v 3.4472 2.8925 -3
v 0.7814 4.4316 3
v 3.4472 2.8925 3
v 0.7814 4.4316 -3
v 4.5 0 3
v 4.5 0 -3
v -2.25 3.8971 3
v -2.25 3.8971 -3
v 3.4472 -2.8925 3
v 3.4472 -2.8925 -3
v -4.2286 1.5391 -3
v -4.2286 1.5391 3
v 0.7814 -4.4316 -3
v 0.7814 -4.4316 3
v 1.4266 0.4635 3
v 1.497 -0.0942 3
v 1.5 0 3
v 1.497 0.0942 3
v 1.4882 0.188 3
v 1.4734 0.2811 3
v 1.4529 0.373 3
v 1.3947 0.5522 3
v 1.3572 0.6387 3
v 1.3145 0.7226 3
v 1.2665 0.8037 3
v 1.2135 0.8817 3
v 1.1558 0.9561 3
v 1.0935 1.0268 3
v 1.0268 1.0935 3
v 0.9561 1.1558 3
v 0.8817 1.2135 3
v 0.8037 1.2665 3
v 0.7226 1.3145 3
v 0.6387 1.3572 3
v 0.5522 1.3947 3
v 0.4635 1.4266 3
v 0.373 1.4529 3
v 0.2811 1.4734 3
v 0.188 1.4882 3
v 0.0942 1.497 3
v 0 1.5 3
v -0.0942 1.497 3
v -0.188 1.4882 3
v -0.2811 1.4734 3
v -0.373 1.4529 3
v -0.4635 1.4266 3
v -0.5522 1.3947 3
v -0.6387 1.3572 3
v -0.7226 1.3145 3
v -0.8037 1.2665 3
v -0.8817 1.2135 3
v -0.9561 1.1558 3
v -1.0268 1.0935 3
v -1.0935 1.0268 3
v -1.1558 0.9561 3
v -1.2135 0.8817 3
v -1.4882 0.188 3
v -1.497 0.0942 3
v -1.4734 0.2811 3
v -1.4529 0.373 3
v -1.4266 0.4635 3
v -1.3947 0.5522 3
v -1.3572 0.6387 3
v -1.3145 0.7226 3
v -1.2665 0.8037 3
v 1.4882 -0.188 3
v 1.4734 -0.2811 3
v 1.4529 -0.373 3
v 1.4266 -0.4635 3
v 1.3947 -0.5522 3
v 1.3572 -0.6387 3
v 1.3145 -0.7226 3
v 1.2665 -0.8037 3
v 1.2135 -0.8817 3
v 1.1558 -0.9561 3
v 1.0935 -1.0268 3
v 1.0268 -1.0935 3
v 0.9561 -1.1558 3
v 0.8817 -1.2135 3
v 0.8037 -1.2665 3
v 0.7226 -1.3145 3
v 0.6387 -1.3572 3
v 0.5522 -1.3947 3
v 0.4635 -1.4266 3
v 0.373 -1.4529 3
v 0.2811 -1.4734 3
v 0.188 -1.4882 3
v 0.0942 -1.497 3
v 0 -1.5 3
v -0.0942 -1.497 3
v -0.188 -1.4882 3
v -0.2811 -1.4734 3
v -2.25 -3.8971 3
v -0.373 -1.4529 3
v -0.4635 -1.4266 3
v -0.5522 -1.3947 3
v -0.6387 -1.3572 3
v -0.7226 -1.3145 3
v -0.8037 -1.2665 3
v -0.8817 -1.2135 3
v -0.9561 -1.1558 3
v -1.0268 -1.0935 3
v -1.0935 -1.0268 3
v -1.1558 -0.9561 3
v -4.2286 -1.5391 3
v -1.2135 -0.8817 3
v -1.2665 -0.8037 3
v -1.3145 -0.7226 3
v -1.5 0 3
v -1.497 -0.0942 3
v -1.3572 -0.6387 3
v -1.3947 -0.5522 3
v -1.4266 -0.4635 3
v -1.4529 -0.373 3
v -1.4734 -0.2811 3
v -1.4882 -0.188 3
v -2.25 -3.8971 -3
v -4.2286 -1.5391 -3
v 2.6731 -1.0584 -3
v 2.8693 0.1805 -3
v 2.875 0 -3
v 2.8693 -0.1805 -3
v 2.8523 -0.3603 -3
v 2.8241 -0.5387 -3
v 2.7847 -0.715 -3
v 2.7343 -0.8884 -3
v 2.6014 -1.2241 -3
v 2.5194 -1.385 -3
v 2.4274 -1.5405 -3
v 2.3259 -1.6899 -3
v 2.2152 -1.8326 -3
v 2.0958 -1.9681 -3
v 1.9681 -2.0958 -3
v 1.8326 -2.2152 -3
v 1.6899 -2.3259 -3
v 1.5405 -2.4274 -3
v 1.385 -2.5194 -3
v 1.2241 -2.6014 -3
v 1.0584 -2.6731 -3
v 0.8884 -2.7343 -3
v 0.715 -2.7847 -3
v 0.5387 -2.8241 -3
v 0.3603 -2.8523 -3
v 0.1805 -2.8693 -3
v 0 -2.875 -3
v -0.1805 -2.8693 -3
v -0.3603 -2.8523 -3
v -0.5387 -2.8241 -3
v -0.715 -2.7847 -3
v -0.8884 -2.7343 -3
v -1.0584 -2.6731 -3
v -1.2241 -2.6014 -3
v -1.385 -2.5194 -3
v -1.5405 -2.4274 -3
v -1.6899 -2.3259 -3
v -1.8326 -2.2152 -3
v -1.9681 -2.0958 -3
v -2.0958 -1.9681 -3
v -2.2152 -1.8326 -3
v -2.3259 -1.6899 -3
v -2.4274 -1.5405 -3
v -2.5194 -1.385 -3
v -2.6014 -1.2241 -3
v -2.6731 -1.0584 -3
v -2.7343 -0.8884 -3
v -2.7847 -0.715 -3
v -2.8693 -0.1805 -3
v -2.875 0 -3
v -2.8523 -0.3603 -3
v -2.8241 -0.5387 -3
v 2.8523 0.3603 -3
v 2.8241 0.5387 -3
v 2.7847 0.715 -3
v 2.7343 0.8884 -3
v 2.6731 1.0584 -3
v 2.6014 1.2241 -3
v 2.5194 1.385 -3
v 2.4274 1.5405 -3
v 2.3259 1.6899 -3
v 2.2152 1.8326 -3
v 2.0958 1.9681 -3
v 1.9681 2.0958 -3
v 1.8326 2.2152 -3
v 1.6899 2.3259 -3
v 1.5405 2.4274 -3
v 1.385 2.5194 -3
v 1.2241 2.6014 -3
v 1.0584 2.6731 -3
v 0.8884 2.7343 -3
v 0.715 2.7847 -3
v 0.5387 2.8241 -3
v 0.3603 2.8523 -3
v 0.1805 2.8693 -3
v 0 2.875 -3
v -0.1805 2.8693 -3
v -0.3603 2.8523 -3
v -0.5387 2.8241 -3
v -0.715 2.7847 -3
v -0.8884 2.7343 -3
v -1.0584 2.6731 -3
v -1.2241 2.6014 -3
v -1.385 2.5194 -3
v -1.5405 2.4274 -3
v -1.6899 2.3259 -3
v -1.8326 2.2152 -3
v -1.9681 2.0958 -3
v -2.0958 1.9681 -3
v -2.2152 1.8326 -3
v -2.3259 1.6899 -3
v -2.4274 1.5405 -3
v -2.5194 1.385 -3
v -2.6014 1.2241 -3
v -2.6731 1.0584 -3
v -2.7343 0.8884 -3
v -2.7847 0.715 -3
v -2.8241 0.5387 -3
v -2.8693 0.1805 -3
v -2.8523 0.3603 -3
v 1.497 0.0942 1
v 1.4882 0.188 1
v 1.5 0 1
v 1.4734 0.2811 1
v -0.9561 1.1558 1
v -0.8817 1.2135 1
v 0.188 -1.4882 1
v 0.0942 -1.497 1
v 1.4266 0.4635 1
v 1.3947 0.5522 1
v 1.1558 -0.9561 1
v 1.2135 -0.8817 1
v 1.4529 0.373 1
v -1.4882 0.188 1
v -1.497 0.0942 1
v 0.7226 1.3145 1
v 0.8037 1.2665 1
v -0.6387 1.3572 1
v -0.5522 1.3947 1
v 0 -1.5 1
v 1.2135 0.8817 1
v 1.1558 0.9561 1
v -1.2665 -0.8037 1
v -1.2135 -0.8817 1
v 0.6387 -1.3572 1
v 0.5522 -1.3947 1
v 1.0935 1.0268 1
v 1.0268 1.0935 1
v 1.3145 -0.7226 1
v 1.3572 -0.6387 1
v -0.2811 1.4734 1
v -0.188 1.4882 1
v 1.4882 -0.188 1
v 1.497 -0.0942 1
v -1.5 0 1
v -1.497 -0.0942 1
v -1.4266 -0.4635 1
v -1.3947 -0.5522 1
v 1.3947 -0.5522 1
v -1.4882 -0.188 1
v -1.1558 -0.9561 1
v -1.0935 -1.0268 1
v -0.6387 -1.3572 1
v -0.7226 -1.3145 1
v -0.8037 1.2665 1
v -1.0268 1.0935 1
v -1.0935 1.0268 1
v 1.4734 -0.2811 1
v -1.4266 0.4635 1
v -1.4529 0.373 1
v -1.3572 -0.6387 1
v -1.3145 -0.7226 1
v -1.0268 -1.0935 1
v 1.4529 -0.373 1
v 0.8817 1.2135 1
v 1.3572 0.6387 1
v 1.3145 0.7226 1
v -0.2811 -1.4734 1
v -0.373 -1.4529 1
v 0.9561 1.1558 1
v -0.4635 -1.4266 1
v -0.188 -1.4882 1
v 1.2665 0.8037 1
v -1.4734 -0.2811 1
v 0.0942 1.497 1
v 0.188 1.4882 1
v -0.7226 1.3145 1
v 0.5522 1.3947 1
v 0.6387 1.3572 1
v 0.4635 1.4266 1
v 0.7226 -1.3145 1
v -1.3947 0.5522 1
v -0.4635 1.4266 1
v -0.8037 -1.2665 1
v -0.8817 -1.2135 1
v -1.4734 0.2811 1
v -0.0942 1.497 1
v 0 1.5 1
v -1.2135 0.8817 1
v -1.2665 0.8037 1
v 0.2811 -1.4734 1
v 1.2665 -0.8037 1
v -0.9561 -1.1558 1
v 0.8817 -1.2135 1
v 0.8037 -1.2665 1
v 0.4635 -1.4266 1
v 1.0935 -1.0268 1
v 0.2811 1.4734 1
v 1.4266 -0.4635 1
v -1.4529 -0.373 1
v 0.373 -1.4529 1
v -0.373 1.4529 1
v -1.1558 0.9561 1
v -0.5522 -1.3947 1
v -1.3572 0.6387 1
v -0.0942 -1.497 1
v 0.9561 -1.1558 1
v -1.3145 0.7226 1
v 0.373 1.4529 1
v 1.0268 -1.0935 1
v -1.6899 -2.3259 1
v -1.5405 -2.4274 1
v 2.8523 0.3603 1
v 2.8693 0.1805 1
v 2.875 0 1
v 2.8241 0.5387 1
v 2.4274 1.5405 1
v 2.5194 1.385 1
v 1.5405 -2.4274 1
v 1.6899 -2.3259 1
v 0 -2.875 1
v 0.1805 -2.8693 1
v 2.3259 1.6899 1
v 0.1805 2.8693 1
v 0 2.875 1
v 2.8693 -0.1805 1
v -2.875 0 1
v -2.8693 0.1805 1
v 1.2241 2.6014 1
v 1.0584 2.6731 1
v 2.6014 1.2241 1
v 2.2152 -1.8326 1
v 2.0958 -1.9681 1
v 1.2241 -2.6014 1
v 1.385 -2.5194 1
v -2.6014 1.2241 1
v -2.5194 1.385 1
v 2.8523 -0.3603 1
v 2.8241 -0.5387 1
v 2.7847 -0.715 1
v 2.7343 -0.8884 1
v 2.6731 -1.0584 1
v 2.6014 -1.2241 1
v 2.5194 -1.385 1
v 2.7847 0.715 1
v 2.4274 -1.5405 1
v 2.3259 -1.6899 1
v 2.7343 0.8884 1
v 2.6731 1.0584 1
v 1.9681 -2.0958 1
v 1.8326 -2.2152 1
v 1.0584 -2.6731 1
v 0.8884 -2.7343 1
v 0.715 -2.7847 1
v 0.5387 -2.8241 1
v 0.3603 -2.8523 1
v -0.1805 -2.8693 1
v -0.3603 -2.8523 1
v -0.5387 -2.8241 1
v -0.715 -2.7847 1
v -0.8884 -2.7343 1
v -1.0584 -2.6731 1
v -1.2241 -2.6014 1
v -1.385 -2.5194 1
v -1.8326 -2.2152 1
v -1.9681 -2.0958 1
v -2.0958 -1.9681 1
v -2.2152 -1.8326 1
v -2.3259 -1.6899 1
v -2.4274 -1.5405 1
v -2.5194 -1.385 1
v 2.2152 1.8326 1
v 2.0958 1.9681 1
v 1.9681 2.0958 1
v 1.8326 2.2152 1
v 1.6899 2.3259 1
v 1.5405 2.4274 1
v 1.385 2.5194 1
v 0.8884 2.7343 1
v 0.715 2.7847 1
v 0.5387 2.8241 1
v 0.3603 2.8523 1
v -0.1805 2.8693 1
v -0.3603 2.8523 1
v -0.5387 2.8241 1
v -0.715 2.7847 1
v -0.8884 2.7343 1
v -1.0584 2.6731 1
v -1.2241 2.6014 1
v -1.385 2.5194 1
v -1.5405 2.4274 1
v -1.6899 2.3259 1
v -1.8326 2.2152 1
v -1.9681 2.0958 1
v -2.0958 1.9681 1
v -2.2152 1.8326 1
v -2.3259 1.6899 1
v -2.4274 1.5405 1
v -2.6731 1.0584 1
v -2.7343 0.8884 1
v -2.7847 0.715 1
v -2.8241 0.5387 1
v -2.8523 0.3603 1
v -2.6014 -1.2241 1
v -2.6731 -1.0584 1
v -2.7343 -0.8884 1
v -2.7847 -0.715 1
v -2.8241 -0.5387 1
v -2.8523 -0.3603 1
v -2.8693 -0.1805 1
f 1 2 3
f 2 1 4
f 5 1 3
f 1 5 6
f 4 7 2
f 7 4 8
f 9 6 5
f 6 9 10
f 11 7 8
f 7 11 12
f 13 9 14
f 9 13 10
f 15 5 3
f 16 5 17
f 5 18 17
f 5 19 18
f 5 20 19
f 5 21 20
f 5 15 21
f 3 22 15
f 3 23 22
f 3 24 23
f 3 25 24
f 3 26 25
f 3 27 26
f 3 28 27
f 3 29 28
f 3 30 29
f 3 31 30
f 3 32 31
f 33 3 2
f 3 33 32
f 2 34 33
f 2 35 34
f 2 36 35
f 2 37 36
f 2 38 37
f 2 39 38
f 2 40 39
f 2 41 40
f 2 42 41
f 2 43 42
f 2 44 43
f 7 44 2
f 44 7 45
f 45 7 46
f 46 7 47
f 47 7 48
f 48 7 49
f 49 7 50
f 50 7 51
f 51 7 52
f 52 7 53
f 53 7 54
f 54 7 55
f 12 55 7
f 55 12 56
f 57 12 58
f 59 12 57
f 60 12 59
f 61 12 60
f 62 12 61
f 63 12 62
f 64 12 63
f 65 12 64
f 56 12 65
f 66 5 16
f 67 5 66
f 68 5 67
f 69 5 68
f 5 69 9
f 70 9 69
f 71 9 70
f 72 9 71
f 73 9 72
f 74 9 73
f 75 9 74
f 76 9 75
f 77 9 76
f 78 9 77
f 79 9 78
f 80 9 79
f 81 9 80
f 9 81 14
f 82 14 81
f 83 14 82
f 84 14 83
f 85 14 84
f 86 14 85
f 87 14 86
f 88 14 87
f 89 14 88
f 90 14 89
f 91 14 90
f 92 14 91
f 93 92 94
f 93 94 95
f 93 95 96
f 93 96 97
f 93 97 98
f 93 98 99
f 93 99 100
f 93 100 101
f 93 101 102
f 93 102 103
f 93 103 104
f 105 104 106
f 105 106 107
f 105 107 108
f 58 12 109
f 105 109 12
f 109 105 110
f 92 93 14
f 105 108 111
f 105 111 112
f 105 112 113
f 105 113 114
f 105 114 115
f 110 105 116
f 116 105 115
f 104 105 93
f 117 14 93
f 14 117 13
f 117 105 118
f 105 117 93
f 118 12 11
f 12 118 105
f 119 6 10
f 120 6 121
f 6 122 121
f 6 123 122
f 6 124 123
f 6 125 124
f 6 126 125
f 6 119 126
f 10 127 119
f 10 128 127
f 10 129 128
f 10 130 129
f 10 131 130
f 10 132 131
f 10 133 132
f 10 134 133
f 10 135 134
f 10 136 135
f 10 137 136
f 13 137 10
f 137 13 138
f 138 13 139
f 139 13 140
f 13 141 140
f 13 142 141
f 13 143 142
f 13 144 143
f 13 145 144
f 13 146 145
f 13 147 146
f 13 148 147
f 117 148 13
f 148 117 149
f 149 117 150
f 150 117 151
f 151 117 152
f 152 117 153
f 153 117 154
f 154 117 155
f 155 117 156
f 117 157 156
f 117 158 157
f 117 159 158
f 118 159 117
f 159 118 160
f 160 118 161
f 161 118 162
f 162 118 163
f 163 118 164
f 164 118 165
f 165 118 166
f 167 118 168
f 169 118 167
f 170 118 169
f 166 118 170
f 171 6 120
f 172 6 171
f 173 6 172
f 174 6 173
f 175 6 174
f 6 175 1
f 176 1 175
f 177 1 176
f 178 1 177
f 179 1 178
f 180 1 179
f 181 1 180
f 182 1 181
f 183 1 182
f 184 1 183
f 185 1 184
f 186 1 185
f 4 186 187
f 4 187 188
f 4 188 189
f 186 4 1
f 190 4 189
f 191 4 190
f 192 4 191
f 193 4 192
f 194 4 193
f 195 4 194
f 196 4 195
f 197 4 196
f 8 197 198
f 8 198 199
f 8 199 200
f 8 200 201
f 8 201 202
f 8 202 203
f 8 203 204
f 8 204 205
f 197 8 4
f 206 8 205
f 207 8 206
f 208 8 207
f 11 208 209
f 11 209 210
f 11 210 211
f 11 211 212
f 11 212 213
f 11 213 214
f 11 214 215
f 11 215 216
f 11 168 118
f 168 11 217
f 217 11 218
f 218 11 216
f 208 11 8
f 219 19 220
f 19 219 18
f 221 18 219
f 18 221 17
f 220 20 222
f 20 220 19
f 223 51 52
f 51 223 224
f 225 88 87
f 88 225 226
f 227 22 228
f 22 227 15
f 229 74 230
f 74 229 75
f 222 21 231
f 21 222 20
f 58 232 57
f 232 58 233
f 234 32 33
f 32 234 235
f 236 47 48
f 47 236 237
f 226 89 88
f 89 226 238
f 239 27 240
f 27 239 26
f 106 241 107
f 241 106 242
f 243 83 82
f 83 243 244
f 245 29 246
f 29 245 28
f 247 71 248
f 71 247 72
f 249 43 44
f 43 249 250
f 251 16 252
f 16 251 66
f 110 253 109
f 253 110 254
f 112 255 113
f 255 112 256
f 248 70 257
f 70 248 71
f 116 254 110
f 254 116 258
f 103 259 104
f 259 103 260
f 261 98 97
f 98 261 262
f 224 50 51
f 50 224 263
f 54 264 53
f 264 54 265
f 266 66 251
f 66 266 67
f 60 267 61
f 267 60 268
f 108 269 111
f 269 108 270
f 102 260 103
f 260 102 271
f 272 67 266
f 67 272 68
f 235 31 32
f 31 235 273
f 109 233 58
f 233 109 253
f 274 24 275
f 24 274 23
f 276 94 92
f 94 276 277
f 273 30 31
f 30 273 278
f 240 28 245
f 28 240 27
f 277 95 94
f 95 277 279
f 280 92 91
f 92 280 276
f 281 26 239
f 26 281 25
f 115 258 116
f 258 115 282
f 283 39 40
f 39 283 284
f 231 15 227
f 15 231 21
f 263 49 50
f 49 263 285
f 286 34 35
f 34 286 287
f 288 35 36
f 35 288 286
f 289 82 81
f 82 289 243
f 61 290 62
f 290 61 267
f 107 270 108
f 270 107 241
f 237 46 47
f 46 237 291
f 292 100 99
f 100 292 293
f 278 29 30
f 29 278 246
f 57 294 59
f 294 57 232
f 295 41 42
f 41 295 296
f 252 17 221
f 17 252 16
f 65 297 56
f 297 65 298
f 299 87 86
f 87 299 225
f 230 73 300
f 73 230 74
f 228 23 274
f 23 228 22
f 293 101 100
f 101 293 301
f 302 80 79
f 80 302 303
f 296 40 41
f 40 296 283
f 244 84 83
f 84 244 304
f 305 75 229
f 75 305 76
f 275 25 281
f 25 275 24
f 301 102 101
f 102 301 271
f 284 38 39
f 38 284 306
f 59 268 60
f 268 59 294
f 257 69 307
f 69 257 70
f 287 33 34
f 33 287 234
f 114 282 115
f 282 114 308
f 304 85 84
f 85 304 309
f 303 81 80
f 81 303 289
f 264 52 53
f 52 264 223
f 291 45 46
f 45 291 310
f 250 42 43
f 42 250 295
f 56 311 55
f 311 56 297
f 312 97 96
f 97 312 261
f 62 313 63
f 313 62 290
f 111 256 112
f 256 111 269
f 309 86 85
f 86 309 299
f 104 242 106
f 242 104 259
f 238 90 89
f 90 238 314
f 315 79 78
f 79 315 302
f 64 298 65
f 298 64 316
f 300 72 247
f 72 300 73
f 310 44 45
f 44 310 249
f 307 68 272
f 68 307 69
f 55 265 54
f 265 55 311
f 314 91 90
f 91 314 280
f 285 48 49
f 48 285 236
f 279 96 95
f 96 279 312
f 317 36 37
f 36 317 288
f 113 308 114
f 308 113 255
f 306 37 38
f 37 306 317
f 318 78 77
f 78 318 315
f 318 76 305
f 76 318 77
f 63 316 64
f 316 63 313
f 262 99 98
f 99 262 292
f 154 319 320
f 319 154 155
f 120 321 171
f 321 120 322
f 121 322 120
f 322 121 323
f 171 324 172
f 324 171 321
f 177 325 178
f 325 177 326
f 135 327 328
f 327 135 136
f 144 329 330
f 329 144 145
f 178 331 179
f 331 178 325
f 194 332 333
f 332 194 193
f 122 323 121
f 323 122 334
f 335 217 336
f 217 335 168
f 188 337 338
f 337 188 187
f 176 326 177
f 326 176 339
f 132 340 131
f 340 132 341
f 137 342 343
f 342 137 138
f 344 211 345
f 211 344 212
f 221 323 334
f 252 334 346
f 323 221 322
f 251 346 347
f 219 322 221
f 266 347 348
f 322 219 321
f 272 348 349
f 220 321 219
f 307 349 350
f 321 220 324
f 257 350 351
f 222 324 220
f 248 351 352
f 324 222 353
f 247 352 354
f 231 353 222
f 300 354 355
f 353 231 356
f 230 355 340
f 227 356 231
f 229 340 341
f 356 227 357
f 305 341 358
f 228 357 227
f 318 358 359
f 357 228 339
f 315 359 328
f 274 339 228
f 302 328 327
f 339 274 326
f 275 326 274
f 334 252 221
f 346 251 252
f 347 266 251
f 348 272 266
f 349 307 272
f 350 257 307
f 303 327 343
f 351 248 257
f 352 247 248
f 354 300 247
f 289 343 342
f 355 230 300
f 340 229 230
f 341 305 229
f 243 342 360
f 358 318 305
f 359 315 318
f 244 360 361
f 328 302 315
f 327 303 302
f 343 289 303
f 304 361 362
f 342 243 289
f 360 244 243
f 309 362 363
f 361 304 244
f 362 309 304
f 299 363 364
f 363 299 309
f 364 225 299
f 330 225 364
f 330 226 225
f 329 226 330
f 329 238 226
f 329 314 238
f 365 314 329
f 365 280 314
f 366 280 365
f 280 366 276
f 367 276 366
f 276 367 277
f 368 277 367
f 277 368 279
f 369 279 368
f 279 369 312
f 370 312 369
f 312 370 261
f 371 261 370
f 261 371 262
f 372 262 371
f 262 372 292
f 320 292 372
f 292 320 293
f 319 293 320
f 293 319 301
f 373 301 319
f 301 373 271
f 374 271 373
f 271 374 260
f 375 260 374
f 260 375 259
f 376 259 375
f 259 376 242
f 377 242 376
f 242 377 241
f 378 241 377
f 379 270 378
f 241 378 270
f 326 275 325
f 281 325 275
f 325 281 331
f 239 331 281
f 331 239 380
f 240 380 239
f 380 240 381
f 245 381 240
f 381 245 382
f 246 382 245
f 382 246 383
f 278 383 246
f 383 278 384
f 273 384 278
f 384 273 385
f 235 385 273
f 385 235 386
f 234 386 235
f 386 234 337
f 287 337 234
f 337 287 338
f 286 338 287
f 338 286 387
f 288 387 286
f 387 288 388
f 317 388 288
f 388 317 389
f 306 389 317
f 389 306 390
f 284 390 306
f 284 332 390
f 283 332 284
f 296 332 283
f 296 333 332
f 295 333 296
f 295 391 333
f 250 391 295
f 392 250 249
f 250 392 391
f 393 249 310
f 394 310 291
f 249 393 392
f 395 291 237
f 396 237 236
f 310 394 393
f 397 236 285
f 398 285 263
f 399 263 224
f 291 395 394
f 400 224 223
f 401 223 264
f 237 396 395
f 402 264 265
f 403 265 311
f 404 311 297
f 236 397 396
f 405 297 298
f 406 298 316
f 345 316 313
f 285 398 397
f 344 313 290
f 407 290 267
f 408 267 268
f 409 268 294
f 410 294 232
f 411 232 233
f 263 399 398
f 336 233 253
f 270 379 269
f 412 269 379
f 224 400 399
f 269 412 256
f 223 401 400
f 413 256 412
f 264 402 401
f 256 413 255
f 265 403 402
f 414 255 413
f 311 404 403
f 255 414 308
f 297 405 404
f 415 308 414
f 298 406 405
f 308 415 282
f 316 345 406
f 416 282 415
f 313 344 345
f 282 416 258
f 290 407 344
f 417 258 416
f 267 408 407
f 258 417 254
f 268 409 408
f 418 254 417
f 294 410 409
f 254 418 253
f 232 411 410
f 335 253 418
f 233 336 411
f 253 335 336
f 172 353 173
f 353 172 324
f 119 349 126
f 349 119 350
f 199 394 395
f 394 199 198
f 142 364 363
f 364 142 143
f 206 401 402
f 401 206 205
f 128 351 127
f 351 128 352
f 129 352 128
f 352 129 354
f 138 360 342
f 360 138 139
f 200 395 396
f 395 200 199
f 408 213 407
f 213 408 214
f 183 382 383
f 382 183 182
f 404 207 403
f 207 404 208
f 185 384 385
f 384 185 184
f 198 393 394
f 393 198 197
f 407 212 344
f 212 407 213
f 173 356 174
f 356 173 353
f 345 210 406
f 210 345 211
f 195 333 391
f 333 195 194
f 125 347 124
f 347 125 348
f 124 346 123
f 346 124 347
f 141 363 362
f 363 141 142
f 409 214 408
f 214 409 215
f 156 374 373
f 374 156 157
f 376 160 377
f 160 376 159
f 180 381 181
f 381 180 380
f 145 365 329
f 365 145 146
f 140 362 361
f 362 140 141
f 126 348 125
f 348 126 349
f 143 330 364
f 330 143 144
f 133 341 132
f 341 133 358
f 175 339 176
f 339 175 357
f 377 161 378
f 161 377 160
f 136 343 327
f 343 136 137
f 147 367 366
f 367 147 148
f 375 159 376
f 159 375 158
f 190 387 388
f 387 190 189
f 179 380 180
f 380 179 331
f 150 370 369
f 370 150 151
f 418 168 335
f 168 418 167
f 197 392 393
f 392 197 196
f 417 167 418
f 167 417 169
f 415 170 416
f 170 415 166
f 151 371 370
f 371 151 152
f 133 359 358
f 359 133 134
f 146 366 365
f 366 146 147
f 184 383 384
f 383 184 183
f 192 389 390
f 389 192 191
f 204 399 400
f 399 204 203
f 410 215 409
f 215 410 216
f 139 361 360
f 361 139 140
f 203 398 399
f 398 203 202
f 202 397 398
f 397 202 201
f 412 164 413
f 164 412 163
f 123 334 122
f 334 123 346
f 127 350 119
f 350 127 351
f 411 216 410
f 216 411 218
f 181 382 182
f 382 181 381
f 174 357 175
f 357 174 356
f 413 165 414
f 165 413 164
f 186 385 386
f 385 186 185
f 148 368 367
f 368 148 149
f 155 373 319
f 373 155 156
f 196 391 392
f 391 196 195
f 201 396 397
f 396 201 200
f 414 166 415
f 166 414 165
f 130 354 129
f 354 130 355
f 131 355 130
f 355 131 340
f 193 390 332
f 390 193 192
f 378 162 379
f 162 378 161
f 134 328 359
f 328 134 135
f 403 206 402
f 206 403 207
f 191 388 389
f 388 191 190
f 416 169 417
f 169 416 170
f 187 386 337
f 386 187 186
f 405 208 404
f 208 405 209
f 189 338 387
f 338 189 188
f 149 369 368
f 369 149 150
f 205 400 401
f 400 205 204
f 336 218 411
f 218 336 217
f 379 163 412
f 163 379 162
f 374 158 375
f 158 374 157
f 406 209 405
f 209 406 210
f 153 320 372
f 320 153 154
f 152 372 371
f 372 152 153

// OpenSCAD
module cap(){
    difference(){
        cylinder(d=9, h=6, center=true, $fn=9);
        cylinder(d=3, h=40, center=true, $fn=100);
        translate([0,0,-2]) cylinder(d=5.75, h=6, center=true, $fn=100);
    }
}

cap();
